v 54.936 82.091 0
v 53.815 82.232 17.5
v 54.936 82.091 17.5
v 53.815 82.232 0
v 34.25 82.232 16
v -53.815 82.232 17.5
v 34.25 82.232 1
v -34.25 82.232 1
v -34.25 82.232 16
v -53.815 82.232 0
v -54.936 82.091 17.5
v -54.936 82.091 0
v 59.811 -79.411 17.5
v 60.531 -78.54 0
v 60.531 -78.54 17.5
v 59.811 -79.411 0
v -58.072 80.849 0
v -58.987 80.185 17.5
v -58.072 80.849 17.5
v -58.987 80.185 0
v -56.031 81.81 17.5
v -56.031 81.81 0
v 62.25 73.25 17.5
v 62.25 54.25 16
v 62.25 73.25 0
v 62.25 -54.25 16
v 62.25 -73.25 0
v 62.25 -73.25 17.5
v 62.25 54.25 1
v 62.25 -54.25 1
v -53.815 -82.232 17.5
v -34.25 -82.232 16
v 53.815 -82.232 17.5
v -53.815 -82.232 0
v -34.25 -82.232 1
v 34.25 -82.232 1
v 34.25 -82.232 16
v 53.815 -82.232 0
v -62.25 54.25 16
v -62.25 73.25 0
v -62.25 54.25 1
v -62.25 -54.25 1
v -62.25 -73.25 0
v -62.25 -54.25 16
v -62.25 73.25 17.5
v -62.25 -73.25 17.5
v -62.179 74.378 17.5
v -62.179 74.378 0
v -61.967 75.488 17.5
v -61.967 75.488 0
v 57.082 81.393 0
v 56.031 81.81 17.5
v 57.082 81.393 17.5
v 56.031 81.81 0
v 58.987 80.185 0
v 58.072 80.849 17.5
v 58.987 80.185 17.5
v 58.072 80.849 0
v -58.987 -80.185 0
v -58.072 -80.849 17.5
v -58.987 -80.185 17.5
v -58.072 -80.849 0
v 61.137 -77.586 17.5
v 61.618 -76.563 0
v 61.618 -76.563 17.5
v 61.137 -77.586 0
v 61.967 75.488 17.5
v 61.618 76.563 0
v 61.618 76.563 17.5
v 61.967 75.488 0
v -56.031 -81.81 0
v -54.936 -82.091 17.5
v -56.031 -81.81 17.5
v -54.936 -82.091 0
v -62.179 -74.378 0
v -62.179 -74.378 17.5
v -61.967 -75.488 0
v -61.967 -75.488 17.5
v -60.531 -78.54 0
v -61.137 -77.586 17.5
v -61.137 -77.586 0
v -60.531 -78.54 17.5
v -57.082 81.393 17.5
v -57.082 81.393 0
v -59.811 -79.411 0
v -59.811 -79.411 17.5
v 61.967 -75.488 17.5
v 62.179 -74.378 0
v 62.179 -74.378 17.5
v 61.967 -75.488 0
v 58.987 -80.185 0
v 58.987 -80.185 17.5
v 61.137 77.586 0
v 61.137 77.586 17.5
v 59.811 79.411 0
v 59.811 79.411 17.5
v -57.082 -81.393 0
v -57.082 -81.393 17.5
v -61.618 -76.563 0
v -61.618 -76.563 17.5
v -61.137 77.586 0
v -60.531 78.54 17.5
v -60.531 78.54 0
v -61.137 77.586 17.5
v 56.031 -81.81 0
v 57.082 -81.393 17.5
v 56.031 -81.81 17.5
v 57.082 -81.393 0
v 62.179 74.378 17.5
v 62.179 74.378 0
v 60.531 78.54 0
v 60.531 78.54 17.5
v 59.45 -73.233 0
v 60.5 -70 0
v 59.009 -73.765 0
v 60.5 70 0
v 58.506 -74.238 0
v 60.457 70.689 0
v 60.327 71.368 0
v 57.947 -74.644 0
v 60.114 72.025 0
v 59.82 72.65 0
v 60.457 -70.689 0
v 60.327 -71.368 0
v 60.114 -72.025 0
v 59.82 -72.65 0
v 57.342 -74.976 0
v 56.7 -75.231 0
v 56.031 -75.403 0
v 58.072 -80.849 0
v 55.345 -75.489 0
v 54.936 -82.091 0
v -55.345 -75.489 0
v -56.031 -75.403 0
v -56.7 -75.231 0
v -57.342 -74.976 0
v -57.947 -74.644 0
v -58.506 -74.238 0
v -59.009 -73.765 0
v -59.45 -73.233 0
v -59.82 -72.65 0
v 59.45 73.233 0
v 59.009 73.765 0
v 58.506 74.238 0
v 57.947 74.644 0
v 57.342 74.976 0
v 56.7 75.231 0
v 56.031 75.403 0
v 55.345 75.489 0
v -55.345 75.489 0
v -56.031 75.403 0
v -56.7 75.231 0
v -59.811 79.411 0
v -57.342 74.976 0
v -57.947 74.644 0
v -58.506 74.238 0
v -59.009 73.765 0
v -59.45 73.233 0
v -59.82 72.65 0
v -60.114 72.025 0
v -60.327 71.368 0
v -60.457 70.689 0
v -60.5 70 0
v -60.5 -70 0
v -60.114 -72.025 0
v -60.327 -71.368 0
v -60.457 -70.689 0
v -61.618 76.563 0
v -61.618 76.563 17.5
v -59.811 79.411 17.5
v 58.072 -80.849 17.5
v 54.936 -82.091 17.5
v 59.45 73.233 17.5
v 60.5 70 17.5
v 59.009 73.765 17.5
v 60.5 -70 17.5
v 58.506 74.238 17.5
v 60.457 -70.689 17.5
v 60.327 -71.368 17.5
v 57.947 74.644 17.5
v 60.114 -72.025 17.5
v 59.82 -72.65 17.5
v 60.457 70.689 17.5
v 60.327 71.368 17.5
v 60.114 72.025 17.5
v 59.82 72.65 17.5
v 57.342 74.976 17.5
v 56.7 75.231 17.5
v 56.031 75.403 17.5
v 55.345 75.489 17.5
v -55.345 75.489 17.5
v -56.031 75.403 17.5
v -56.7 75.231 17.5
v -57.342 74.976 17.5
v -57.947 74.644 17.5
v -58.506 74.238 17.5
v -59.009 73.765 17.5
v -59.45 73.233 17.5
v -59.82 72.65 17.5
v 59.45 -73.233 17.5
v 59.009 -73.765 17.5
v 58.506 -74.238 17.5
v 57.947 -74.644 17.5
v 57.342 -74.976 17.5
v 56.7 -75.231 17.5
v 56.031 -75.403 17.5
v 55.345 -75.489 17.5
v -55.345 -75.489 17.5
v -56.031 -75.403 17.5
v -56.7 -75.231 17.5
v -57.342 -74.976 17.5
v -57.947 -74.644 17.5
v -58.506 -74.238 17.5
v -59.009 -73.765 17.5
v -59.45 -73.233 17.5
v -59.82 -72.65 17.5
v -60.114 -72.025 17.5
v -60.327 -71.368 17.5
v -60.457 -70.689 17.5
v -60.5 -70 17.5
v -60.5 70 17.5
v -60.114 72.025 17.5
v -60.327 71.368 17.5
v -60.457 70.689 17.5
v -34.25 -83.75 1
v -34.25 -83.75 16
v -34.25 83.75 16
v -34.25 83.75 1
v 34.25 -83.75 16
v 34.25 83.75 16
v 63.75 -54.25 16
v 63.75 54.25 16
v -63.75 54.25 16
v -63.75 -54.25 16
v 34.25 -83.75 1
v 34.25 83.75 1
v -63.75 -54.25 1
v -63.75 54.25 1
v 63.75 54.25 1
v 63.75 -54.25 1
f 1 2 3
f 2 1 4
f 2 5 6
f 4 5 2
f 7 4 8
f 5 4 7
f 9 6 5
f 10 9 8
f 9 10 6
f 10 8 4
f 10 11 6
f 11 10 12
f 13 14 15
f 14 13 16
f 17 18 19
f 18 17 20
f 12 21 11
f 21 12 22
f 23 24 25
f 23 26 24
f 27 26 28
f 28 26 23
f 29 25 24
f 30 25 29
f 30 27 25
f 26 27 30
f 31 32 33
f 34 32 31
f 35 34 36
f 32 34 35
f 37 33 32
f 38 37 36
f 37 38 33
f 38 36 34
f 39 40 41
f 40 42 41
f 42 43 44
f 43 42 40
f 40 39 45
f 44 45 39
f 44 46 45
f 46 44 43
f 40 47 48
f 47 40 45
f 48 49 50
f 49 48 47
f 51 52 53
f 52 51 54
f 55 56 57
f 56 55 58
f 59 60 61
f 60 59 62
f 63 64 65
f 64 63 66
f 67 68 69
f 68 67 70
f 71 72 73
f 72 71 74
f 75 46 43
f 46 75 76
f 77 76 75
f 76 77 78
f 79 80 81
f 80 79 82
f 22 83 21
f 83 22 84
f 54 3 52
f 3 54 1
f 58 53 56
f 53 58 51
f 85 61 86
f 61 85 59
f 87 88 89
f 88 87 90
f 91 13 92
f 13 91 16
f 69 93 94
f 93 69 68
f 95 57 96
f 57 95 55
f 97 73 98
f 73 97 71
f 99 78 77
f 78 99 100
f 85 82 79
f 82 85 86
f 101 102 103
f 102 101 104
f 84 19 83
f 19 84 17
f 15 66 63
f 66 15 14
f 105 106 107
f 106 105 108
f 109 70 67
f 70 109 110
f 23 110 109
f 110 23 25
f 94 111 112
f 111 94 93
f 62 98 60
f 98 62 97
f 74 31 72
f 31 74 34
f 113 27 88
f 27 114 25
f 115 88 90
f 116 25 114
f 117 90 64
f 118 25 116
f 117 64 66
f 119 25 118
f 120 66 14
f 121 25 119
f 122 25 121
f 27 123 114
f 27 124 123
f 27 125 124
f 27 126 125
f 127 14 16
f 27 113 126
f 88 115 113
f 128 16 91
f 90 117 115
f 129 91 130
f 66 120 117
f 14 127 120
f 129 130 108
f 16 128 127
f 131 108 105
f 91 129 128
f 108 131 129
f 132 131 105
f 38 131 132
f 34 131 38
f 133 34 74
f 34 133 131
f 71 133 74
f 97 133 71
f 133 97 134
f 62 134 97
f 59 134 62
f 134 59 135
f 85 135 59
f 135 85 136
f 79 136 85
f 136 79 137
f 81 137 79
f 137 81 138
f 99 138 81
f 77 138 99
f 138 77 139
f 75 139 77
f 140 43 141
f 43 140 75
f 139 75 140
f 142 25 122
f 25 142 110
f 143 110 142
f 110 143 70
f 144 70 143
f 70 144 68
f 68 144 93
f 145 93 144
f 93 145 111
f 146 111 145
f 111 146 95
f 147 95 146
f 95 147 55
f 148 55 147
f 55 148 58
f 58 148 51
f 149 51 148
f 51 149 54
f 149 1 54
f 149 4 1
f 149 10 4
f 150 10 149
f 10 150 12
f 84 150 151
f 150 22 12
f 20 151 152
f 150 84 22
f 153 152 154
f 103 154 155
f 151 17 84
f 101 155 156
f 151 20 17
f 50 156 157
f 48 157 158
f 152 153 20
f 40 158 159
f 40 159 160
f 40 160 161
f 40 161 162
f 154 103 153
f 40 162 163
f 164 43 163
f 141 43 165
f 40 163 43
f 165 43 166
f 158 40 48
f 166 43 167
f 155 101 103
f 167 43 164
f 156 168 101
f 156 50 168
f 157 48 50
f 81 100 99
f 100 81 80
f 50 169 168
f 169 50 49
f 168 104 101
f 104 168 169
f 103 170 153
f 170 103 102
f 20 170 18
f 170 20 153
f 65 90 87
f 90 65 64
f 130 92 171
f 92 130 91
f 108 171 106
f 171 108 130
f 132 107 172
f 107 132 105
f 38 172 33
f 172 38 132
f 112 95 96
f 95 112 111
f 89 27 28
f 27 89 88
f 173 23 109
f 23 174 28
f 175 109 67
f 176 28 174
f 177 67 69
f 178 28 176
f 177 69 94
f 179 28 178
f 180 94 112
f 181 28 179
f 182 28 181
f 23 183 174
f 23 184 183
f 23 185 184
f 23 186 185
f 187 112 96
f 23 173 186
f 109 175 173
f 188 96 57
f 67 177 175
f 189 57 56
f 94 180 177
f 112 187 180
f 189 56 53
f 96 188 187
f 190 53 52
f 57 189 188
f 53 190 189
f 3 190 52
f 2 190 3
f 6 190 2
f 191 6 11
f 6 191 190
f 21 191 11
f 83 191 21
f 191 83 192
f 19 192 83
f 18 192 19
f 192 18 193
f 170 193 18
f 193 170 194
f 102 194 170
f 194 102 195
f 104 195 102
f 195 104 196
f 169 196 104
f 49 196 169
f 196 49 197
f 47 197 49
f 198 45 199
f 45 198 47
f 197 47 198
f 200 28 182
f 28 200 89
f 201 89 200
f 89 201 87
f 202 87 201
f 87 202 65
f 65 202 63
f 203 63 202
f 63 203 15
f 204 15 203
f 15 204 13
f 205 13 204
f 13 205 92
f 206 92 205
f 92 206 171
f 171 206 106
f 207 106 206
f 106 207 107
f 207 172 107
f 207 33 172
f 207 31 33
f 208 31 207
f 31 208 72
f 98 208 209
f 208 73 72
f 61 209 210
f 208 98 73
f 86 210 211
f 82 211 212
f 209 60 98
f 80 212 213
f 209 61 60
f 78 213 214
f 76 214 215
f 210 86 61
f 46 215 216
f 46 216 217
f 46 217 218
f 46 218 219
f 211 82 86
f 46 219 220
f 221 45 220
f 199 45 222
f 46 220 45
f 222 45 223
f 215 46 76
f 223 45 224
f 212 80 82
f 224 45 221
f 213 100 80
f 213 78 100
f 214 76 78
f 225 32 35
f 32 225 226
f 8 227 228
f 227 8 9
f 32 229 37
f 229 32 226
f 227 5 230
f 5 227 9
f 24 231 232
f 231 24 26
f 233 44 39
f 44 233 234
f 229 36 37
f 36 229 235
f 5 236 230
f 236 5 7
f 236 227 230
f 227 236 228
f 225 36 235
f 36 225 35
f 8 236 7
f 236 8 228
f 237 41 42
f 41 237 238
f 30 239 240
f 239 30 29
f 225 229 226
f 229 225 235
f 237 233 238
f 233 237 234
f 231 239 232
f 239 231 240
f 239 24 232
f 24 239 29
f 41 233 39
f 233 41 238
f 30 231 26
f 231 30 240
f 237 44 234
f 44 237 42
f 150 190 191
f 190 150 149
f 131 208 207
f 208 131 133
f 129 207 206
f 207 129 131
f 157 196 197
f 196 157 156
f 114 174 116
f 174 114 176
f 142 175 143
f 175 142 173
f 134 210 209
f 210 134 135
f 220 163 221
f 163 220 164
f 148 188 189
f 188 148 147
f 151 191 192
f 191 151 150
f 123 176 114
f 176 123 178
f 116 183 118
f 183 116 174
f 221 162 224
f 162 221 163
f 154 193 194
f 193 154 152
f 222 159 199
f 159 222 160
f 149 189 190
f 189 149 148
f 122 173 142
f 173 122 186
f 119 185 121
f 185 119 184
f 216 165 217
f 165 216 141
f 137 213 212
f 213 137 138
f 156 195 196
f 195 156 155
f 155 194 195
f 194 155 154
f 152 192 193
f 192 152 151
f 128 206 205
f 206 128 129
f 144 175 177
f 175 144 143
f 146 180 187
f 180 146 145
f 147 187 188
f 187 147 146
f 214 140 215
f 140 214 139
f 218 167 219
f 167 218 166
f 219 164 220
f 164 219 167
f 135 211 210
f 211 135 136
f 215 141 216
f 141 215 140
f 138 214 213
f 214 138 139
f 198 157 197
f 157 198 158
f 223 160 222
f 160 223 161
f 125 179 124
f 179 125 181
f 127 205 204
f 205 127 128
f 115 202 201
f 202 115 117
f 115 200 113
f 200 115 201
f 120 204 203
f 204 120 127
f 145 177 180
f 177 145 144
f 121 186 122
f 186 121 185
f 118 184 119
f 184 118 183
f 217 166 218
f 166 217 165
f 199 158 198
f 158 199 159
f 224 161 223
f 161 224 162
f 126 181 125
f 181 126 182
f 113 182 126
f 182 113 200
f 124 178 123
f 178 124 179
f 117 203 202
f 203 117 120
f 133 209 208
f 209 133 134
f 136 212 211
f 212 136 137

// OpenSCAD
$fn = 50;


difference() {
	union() {
		hull() {
			translate(v = [-53.2500000000, 73.2500000000, 0]) {
				cylinder(h = 15.2500000000, r = 9.0000000000);
			}
			translate(v = [53.2500000000, 73.2500000000, 0]) {
				cylinder(h = 15.2500000000, r = 9.0000000000);
			}
			translate(v = [-53.2500000000, -73.2500000000, 0]) {
				cylinder(h = 15.2500000000, r = 9.0000000000);
			}
			translate(v = [53.2500000000, -73.2500000000, 0]) {
				cylinder(h = 15.2500000000, r = 9.0000000000);
			}
		}
		hull() {
			translate(v = [-53.2500000000, 73.2500000000, 0]) {
				cylinder(h = 17.5000000000, r = 9);
			}
			translate(v = [53.2500000000, 73.2500000000, 0]) {
				cylinder(h = 17.5000000000, r = 9);
			}
			translate(v = [-53.2500000000, -73.2500000000, 0]) {
				cylinder(h = 17.5000000000, r = 9);
			}
			translate(v = [53.2500000000, -73.2500000000, 0]) {
				cylinder(h = 17.5000000000, r = 9);
			}
		}
		translate(v = [-34.2500000000, -83.7500000000, 1]) {
			cube(size = [68.5000000000, 167.5000000000, 15.0000000000]);
		}
		translate(v = [-63.7500000000, -54.2500000000, 1]) {
			cube(size = [127.5000000000, 108.5000000000, 15.0000000000]);
		}
	}
	union() {
		hull() {
			translate(v = [-55.0000000000, 70.0000000000, 0]) {
				cylinder(h = 17.5000000000, r = 5.5000000000);
			}
			translate(v = [55.0000000000, 70.0000000000, 0]) {
				cylinder(h = 17.5000000000, r = 5.5000000000);
			}
			translate(v = [-55.0000000000, -70.0000000000, 0]) {
				cylinder(h = 17.5000000000, r = 5.5000000000);
			}
			translate(v = [55.0000000000, -70.0000000000, 0]) {
				cylinder(h = 17.5000000000, r = 5.5000000000);
			}
		}
	}
}
